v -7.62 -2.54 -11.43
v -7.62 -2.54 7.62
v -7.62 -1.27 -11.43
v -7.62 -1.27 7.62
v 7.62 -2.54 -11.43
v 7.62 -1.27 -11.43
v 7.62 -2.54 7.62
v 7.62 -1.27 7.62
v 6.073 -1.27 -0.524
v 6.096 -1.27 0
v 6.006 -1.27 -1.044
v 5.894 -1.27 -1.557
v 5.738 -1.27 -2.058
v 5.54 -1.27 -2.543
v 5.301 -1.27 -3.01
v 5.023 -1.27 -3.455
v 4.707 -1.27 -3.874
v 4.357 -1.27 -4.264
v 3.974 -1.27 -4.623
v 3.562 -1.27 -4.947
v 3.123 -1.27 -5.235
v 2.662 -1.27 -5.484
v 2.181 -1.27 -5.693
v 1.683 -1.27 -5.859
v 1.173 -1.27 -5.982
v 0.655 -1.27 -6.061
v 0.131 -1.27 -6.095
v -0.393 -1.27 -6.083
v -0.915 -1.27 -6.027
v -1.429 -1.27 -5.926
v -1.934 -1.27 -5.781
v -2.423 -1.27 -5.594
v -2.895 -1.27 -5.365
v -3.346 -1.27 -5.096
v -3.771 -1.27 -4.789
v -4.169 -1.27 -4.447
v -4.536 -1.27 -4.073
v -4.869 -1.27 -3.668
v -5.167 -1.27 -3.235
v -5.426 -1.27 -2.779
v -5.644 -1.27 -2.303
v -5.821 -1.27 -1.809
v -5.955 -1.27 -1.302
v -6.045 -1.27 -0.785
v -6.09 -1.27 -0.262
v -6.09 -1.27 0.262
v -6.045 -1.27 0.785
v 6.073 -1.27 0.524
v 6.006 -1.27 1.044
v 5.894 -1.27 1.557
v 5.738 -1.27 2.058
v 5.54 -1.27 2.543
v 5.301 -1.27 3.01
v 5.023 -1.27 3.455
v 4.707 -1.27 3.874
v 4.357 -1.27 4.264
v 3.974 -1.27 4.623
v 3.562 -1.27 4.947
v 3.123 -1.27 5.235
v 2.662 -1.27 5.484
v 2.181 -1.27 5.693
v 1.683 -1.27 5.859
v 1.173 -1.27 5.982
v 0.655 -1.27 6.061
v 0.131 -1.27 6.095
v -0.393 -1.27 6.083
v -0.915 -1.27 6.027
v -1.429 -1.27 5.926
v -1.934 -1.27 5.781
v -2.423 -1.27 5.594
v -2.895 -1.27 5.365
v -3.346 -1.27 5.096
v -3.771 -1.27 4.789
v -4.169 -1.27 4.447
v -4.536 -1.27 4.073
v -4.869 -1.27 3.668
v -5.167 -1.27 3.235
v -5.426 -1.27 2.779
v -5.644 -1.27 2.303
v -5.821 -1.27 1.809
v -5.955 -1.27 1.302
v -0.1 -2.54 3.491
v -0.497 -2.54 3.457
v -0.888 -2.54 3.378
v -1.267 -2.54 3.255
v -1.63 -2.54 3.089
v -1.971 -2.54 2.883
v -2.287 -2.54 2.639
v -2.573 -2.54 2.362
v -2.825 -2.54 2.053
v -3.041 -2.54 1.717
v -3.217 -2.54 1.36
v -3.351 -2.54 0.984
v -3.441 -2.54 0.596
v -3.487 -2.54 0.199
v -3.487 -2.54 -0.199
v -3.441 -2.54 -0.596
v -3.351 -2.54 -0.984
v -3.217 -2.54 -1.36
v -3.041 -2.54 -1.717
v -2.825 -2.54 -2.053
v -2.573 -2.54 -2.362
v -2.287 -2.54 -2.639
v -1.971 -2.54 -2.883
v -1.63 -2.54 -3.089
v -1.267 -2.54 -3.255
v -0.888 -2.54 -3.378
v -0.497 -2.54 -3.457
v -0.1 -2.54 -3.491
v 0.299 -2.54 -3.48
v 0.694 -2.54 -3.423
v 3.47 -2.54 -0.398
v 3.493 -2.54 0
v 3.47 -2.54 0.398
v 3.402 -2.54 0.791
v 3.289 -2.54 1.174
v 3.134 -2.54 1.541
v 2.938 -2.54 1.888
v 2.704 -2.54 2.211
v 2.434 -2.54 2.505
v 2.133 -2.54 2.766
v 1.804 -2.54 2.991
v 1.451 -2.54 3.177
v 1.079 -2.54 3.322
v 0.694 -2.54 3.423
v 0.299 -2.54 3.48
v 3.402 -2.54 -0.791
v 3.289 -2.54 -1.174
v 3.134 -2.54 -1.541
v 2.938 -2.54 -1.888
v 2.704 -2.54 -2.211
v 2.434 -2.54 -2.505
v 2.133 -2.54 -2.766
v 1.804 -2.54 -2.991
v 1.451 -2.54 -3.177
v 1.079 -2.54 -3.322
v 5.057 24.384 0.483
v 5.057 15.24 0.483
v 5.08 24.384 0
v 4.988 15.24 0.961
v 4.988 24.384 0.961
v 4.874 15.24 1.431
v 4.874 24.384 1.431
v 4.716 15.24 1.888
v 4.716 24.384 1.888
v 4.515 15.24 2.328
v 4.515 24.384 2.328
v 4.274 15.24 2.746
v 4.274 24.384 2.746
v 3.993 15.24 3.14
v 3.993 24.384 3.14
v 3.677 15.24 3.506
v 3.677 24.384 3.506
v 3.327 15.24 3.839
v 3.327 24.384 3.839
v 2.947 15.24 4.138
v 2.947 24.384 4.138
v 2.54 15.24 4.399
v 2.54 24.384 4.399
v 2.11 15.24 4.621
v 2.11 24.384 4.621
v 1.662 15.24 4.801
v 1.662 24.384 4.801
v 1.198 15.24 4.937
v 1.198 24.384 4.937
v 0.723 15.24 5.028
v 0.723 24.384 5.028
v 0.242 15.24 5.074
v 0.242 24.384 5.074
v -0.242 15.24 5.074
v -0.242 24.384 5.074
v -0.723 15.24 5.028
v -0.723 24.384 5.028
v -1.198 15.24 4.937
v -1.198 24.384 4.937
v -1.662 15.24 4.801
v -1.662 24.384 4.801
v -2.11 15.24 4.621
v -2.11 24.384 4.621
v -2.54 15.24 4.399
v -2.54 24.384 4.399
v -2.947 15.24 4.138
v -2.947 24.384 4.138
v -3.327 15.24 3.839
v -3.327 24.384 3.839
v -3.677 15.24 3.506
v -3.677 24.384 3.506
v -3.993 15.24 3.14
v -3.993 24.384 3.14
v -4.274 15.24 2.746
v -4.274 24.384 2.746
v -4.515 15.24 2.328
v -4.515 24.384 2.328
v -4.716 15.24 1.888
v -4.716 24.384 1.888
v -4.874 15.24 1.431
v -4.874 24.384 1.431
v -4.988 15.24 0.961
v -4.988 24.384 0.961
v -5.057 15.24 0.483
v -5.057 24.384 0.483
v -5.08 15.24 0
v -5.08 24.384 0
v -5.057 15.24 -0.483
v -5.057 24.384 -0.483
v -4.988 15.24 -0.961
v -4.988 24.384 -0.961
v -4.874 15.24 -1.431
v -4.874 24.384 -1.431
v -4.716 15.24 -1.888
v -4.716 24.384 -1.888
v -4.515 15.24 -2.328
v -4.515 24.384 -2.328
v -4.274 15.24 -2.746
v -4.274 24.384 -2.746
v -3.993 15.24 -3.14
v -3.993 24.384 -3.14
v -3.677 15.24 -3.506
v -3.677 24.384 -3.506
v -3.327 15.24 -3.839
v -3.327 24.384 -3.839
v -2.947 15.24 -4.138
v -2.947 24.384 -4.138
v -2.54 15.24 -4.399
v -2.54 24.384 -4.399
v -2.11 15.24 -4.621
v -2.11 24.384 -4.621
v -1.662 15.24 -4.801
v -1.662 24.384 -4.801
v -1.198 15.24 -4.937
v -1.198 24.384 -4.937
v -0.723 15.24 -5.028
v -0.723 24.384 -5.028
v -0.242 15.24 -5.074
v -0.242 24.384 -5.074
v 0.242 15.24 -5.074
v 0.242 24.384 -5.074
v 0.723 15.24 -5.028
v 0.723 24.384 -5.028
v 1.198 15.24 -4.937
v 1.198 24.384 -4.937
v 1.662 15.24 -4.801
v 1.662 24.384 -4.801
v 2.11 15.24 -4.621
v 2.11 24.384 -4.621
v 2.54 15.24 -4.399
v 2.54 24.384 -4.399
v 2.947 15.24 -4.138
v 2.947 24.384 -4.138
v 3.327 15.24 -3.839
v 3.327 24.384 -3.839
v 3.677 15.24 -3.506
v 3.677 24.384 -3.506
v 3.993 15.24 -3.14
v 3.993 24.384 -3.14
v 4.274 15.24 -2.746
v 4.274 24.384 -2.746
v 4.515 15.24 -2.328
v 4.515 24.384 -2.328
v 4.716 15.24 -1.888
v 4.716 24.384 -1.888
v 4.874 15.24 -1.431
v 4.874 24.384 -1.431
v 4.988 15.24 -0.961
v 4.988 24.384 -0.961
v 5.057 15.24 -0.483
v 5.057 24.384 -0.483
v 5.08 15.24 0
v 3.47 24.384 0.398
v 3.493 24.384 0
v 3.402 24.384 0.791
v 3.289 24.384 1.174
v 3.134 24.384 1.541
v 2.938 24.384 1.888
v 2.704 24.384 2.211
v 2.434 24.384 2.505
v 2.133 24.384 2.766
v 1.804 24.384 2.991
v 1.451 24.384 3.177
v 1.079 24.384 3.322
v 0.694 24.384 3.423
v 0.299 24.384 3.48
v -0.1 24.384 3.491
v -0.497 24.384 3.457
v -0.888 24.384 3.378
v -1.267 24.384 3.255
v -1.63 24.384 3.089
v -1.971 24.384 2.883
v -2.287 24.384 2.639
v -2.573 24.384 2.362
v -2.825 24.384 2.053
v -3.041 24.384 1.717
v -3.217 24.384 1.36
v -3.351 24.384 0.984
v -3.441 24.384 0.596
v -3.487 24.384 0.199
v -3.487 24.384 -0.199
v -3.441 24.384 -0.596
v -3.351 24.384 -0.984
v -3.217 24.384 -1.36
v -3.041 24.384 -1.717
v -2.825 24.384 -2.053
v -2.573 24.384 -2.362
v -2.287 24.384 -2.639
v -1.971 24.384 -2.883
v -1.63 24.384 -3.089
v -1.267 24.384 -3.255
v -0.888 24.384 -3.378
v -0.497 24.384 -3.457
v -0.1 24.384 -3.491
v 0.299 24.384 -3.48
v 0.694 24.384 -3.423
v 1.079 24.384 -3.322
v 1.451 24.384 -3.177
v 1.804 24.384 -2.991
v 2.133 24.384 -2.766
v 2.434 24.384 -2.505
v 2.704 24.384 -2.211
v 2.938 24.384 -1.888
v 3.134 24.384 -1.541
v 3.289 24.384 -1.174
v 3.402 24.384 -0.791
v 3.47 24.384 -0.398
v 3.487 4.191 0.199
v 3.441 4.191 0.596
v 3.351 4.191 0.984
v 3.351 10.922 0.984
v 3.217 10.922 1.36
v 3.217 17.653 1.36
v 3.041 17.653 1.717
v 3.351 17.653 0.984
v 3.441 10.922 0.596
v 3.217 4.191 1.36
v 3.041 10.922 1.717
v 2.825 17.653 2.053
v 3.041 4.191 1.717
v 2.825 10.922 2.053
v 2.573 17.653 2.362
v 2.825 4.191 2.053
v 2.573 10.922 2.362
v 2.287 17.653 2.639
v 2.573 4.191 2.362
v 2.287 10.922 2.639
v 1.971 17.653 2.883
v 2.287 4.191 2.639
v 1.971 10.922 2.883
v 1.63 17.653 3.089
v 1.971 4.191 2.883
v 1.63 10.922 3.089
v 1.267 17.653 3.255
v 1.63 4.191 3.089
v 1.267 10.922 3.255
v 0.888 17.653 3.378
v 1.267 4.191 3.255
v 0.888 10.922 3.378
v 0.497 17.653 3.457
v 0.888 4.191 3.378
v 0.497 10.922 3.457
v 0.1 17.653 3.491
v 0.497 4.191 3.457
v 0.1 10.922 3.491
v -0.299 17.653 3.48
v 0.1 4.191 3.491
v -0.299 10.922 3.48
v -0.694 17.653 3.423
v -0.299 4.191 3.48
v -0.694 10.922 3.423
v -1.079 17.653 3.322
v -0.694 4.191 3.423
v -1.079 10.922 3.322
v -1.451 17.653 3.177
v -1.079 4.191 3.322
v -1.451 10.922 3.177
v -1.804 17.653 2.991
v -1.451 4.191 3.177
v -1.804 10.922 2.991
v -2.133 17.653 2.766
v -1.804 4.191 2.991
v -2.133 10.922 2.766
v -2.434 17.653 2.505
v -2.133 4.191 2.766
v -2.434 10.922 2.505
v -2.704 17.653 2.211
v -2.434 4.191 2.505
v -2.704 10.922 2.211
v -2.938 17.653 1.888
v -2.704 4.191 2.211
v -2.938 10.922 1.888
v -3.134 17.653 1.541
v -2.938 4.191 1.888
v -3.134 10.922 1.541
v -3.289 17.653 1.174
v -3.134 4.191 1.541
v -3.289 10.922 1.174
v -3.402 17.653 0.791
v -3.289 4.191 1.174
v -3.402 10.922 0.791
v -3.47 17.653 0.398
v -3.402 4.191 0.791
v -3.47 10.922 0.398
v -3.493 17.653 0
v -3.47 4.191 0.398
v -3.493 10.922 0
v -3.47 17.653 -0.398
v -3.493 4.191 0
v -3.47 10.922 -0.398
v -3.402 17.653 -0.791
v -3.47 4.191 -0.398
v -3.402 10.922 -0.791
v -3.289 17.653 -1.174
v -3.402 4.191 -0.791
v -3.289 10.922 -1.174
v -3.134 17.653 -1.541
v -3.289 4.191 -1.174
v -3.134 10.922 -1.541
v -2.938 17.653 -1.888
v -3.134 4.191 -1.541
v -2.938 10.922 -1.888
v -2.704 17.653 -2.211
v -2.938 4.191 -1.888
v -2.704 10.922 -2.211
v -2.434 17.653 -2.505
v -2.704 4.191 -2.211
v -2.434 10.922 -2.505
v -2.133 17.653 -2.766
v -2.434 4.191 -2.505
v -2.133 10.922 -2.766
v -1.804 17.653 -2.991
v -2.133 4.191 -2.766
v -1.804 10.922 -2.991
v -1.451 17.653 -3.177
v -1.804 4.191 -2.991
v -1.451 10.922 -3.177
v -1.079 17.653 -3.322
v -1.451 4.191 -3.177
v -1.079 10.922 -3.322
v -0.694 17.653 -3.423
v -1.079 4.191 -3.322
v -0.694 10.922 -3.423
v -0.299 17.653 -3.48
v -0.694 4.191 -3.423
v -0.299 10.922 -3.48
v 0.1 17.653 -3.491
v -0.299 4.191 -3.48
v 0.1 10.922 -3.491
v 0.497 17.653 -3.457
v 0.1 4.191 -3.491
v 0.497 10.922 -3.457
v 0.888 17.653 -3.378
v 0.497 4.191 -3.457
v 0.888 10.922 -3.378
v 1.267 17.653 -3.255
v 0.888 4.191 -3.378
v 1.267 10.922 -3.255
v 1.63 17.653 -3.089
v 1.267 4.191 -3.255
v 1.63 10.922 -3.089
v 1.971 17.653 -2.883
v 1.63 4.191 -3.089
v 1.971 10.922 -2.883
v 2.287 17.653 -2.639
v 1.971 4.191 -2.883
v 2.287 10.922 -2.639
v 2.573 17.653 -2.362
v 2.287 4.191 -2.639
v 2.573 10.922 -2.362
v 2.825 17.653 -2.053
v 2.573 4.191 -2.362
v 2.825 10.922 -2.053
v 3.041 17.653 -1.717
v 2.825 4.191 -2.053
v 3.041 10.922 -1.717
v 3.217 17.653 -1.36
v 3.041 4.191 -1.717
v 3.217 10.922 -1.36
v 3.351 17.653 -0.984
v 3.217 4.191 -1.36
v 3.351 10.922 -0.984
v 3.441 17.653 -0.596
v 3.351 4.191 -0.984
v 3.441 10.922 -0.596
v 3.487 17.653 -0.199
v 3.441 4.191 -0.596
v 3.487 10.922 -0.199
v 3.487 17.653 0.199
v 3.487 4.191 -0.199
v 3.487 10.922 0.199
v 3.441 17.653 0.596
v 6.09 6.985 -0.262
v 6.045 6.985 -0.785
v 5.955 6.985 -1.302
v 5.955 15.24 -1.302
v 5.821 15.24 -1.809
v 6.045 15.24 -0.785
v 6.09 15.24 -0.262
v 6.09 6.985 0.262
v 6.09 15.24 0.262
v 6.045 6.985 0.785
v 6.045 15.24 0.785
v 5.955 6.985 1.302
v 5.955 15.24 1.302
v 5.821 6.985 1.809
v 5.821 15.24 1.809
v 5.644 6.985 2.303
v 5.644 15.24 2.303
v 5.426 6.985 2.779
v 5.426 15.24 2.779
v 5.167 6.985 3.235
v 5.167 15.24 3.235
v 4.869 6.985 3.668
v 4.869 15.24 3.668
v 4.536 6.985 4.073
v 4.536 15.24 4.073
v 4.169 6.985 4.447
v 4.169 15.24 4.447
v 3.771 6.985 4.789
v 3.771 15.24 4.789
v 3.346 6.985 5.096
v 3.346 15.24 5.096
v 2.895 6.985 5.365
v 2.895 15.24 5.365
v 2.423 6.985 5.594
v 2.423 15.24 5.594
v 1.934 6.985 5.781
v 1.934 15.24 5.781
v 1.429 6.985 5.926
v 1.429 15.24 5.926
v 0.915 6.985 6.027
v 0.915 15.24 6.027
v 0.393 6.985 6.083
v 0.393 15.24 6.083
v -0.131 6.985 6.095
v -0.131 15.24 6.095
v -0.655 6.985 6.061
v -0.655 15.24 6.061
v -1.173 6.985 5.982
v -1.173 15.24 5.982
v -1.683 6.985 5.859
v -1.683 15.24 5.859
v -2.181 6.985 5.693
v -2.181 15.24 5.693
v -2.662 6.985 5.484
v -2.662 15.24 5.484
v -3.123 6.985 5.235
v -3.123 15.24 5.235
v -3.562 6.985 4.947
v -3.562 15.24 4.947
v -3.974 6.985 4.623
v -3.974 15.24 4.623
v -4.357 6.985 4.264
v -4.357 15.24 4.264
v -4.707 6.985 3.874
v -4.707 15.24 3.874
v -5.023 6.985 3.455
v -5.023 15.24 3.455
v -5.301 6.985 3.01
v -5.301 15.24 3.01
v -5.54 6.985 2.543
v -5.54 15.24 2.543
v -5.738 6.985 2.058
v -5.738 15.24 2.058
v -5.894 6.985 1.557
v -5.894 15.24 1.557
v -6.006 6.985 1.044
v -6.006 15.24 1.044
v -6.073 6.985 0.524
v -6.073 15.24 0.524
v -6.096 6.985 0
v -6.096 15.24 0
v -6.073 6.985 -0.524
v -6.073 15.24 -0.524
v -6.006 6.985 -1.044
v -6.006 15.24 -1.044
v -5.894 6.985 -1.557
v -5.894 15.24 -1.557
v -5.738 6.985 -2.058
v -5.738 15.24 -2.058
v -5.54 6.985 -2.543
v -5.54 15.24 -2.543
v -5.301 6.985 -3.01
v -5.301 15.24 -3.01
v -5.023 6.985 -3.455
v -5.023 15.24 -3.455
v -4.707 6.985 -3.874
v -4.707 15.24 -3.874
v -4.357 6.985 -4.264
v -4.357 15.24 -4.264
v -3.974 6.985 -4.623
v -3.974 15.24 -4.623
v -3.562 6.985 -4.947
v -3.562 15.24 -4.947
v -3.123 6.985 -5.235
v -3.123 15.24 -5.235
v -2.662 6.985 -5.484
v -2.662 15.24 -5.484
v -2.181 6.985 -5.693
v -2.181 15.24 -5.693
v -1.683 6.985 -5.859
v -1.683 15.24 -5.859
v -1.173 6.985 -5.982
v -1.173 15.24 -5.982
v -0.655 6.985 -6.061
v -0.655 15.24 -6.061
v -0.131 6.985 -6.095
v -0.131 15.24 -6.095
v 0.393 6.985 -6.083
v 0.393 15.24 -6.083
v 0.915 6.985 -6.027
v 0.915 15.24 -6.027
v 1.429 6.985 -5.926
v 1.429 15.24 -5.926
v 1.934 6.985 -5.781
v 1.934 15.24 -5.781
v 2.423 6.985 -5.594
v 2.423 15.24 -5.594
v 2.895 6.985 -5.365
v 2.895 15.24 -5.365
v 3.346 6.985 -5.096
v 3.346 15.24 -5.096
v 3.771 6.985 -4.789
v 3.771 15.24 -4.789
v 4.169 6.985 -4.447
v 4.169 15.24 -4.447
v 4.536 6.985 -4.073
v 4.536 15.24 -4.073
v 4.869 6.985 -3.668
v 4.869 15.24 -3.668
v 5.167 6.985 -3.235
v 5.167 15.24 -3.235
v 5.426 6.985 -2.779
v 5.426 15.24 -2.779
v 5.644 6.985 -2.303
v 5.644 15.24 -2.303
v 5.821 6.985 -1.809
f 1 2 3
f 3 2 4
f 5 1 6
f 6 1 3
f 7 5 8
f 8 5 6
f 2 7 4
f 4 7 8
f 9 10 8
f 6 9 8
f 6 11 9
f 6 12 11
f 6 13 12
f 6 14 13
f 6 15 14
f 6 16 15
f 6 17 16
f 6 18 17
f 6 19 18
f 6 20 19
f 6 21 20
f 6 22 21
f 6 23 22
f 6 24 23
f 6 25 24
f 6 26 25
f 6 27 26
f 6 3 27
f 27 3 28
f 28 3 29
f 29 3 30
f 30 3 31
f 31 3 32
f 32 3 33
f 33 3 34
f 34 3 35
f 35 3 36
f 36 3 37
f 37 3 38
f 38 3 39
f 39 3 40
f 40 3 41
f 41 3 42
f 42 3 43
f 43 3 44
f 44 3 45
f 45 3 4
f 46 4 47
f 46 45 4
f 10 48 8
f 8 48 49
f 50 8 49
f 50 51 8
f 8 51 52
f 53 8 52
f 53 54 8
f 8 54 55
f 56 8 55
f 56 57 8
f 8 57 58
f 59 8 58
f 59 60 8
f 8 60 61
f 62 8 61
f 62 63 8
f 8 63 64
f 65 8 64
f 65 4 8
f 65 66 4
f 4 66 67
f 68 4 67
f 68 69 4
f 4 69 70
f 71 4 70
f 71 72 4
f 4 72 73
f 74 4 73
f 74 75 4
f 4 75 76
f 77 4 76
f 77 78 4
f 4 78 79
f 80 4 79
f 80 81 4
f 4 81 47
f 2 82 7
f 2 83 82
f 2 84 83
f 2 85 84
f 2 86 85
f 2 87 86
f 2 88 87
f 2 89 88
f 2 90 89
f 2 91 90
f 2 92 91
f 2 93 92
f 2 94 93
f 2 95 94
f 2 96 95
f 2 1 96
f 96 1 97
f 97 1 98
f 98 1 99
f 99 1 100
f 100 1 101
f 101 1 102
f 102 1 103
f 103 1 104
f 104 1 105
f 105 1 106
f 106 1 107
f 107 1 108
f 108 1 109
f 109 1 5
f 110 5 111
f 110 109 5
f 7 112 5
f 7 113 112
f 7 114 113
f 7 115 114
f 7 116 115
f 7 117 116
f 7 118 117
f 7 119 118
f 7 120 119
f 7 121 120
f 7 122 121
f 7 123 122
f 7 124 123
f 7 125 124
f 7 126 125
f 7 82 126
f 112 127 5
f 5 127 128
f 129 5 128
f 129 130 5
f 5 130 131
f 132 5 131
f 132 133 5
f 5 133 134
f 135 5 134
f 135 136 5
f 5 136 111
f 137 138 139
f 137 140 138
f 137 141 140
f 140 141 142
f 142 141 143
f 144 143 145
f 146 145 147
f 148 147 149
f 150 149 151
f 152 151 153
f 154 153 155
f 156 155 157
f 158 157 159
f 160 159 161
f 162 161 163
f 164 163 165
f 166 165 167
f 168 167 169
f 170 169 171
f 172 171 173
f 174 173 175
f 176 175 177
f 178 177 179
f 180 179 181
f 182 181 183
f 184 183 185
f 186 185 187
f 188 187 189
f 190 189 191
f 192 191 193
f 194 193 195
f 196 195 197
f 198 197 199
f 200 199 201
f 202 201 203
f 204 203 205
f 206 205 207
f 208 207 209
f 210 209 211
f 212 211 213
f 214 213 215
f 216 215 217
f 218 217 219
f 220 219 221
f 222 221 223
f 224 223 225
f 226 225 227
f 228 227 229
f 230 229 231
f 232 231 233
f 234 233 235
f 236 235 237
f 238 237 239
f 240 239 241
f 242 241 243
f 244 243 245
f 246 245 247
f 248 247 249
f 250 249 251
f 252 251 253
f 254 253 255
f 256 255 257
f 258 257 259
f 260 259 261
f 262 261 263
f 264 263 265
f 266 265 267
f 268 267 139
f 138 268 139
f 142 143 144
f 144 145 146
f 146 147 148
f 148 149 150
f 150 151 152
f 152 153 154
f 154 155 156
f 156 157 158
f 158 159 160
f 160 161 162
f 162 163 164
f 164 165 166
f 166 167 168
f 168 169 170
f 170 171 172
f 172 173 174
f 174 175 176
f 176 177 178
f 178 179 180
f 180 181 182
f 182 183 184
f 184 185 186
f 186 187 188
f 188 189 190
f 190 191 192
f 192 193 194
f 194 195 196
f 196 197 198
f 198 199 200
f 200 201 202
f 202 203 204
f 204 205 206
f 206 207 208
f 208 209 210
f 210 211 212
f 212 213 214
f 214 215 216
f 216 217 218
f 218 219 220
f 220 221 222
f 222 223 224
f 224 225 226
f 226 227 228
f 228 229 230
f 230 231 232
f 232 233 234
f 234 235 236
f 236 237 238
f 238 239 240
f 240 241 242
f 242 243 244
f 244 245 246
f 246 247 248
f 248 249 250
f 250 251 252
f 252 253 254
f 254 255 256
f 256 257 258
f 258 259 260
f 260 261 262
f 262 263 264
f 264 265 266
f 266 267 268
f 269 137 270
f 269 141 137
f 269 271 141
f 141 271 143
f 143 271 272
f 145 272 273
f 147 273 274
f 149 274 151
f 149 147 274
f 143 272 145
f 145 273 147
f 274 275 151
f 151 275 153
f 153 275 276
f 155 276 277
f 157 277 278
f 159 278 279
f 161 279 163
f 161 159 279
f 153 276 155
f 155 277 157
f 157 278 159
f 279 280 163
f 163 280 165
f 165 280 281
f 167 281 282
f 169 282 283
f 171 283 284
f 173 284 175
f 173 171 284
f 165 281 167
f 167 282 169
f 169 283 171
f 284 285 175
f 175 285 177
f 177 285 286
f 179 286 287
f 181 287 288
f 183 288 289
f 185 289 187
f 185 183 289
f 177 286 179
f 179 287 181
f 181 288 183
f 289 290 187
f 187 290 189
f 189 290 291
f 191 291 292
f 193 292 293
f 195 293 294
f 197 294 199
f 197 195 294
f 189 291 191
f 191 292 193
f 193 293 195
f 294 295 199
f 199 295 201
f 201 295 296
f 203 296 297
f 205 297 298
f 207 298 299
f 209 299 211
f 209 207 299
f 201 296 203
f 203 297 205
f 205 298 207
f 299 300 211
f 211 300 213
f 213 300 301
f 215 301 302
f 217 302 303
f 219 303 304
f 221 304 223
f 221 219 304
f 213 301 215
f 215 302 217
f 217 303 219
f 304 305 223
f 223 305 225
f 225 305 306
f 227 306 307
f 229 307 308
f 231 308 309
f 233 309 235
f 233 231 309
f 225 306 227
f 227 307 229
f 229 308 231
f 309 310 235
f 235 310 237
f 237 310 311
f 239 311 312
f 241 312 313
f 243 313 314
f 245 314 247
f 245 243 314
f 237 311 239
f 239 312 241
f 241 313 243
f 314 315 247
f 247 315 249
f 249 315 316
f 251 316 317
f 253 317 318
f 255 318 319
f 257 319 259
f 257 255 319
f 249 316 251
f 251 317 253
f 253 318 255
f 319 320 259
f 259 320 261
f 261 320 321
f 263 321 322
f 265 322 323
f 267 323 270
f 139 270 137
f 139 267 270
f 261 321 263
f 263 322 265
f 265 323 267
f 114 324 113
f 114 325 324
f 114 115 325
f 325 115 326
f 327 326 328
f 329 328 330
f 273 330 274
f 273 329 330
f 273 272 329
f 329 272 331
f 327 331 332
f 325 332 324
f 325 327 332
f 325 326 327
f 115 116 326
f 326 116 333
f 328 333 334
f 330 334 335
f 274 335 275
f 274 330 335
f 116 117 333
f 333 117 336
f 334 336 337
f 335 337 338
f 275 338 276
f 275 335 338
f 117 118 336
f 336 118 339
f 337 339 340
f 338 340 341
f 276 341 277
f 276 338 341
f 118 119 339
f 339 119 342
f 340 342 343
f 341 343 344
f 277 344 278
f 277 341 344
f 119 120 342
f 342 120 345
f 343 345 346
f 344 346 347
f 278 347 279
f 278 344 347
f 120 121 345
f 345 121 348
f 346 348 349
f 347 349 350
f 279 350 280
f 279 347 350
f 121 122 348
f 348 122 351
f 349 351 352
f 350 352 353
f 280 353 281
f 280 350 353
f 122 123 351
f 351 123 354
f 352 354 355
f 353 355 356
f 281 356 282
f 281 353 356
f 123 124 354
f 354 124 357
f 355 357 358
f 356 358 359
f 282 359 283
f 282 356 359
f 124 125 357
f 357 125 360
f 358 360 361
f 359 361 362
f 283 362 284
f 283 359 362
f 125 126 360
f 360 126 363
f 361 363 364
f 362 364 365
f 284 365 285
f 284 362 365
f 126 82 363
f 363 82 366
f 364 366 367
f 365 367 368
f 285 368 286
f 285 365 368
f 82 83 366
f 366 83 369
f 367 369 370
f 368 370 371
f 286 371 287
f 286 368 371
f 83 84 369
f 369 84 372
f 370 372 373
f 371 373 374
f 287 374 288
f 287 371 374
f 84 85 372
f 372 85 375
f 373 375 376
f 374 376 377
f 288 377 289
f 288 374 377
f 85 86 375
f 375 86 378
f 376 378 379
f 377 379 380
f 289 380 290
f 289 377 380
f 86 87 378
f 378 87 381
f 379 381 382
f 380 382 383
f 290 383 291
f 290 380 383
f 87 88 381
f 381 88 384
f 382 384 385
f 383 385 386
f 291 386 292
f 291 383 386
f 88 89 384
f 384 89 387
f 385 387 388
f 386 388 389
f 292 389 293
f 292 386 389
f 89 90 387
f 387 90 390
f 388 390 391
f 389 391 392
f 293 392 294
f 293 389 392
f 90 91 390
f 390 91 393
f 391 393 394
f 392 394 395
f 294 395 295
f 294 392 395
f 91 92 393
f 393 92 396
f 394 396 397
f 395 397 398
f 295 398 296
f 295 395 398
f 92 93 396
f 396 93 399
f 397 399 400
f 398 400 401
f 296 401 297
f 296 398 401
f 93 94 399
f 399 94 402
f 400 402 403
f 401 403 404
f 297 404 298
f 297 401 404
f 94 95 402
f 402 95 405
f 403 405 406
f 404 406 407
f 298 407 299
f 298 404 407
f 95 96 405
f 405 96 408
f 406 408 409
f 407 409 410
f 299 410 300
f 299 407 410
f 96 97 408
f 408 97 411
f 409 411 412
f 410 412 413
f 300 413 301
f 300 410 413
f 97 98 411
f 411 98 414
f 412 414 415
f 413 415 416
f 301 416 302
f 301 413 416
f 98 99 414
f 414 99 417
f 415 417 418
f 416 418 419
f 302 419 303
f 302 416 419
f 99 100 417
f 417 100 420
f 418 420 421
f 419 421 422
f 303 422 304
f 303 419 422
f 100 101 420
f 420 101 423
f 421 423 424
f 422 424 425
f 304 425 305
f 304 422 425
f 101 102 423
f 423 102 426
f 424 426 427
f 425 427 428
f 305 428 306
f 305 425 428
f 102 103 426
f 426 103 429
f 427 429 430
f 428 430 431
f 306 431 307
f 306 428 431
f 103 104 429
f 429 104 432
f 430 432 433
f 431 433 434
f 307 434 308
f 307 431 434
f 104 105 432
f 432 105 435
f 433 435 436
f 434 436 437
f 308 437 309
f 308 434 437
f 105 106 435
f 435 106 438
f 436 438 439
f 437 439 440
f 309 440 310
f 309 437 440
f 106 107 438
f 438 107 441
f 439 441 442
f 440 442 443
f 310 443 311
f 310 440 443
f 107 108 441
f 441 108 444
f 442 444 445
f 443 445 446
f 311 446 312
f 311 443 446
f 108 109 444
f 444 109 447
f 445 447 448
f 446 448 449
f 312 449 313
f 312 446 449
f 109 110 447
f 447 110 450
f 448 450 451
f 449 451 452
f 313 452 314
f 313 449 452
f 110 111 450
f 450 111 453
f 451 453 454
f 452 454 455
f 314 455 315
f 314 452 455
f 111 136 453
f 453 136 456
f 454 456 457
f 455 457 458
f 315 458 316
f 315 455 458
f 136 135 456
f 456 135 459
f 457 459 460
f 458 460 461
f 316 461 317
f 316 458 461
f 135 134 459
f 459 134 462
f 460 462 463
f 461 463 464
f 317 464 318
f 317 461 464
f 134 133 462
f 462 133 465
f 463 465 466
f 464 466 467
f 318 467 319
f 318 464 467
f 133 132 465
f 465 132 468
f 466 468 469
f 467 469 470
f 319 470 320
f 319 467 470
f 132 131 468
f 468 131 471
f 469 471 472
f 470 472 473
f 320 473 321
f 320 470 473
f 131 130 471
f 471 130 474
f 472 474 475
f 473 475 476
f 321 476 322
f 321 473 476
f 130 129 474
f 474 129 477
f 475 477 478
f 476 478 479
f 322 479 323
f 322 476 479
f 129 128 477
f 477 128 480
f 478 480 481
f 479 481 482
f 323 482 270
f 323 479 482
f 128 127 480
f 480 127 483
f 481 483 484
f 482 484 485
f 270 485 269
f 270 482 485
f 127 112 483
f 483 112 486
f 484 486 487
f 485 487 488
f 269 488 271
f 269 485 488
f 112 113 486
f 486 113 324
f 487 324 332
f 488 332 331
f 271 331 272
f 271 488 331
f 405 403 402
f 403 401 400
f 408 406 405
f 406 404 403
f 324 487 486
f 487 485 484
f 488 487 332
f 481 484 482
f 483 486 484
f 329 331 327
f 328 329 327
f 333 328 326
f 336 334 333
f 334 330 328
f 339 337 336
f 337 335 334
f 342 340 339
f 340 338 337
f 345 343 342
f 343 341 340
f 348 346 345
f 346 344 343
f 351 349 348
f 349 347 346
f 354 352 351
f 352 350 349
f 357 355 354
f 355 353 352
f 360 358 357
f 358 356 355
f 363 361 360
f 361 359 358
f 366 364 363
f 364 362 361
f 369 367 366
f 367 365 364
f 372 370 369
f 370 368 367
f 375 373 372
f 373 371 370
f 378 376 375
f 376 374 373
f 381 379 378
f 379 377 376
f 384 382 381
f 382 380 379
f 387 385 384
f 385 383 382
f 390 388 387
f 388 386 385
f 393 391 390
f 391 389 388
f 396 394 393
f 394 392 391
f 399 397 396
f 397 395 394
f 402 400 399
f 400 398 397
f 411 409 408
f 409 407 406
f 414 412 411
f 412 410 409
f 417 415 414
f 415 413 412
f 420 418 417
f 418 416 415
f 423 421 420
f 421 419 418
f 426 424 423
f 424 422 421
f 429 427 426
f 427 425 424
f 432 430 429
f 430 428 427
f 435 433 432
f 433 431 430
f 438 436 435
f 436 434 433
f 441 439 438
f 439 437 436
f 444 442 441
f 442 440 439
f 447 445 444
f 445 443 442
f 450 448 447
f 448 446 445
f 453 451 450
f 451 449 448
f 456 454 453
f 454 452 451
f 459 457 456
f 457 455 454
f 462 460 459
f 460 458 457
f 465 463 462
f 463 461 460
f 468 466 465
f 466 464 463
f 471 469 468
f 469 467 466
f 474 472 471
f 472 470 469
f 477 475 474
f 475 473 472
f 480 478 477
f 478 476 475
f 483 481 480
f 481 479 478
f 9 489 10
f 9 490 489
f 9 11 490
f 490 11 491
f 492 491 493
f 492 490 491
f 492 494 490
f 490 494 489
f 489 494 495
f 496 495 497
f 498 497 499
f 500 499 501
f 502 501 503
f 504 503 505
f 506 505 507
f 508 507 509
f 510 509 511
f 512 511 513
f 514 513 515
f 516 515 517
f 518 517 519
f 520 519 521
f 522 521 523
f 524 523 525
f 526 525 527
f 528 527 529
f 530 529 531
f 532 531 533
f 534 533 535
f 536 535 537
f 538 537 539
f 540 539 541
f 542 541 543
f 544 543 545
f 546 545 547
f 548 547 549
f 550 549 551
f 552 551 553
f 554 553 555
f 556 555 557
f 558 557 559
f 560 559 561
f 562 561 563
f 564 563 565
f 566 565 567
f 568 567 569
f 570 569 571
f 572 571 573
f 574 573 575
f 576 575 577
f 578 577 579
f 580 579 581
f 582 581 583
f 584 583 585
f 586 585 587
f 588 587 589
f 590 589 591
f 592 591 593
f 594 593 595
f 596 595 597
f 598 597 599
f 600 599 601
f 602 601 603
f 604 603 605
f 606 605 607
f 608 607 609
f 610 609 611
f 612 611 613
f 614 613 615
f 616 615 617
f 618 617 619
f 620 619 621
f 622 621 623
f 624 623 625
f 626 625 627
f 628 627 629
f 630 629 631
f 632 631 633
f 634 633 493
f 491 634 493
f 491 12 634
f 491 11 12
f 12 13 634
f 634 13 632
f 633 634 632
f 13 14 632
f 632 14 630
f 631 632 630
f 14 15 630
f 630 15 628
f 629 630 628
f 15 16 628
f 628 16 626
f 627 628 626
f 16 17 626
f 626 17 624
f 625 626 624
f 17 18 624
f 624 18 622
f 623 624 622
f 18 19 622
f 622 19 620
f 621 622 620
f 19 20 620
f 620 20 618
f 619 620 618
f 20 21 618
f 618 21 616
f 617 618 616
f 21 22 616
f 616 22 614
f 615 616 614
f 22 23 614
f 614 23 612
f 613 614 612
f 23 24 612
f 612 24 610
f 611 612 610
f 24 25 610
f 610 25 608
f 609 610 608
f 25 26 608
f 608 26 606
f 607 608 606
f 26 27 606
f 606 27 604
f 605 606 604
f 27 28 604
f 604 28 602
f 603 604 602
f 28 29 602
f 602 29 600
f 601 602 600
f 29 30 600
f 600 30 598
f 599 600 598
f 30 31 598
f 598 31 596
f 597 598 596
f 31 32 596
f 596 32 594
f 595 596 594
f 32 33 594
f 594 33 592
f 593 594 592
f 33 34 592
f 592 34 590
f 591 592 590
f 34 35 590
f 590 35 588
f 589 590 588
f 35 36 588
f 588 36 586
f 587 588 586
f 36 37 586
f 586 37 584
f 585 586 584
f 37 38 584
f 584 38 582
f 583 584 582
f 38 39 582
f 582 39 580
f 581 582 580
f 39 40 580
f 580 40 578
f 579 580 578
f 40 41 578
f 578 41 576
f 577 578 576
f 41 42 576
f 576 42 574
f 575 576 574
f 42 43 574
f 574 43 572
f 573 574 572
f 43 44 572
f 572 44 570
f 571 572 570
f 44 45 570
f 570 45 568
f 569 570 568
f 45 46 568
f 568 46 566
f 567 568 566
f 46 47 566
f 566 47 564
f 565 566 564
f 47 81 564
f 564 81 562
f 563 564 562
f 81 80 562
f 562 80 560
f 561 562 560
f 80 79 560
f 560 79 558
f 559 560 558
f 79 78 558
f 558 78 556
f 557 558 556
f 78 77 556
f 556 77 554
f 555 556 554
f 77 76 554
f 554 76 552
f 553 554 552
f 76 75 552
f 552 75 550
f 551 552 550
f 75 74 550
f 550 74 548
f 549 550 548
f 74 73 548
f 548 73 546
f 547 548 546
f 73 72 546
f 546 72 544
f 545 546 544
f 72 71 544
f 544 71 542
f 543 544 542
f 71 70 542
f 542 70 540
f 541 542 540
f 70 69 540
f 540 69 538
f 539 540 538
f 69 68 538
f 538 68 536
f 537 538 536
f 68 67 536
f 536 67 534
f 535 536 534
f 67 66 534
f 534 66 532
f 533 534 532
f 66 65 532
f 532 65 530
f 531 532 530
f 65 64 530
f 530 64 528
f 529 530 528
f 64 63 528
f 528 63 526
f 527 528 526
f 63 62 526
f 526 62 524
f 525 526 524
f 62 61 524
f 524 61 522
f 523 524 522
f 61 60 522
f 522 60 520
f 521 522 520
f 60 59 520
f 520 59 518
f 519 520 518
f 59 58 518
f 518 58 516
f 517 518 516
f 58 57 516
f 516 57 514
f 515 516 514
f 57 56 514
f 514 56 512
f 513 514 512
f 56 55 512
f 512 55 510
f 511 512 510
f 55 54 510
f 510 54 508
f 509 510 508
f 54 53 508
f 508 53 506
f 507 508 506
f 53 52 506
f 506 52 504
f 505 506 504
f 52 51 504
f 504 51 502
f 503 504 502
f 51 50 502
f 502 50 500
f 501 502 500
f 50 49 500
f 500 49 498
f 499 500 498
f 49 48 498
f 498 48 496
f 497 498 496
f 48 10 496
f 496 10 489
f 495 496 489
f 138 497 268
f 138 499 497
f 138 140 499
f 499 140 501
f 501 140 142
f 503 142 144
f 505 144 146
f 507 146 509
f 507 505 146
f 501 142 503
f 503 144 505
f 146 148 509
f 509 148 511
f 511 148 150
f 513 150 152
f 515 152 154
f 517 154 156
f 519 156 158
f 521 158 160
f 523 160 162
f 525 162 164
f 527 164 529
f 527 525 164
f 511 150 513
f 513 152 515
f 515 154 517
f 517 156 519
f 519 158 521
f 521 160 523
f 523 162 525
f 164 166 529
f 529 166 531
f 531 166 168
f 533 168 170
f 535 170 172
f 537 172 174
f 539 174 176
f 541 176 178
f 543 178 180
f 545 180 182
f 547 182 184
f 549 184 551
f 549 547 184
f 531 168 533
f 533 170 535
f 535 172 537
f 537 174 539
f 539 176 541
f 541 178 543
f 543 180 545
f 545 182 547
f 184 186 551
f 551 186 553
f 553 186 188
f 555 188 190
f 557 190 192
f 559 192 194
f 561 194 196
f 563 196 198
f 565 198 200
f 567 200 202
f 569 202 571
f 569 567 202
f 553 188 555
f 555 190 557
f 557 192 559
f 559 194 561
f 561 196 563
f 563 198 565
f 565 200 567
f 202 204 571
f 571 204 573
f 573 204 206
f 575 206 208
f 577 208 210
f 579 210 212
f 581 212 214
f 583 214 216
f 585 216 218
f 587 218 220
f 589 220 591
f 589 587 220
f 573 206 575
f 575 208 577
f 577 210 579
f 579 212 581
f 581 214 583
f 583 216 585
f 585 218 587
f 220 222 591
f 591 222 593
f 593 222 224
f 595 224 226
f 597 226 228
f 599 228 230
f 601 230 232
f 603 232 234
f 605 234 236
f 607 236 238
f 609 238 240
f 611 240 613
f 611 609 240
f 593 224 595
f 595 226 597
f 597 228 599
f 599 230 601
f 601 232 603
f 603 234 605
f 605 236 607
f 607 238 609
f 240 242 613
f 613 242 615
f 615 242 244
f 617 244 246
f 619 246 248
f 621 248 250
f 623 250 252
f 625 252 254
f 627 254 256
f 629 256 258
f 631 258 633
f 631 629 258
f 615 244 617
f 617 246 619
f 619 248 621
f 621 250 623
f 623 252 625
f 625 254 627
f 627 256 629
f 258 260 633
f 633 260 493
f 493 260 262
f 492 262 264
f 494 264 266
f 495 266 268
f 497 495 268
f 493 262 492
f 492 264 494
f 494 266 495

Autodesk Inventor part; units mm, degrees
ref_plane "YZ Plane" through (0, 0, 0) normal (1, 0, 0) x (0, 1, 0)
ref_plane "XZ Plane" through (0, 0, 0) normal (0, 1, 0) x (-1, 0, 0)
ref_plane "XY Plane" through (0, 0, 0) normal (0, 0, 1) x (1, 0, 0)
sketch "Sketch1" plane through (0, 0, 0) normal (0, 1, 0) x (-1, 0, 0)
  circle A0 centre (0, 0) radius 6.096
  circle A1 centre (0, 0) radius 3.4925
  dimension "d0" = 12.192
  dimension "d1" = 6.985
extrude "Extrusion1" add sketch "Sketch1" along normal blind 15.24
sketch "Sketch2" plane through (0, 15.24, 0) normal (0, 1, 0) x (1, 0, 0)
  circle A0 centre (0, 0) radius 3.4925 projected
  circle A1 centre (0, 0) radius 6.096 projected
  circle A2 centre (0, 0) radius 3.4925
  circle A3 centre (0, 0) radius 5.08
  dimension "d4" = 10.16
extrude "Extrusion2" add sketch "Sketch2" along normal blind 9.144 contours A3
sketch "Sketch3" plane through (0, 0, 0) normal (0, -1, 0) x (1, 0, 0)
  circle A0 centre (0, 0) radius 3.4925 projected
  circle A1 centre (0, 0) radius 6.096 projected
  circle A2 centre (0, 0) radius 3.4925
  circle A3 centre (0, 0) radius 6.096
extrude "Extrusion3" add sketch "Sketch3" along normal blind 2.54
sketch "Sketch4" plane through (0, -2.54, 0) normal (0, -1, 0) x (1, 0, 0)
  circle A0 centre (0, 0) radius 6.096 projected
  circle A1 centre (0, 0) radius 6.096
  line L0 (-7.62, 7.62) -> (7.62, 7.62)
  line L1 (7.62, 7.62) -> (7.62, -11.43)
  line L2 (7.62, -11.43) -> (-7.62, -11.43)
  line L3 (-7.62, -11.43) -> (-7.62, 7.62)
  dimension "d12" = 15.24
  dimension "d13" = 19.05
  dimension "d14" = 7.62
  dimension "d15" = 7.62
extrude "Extrusion4" add sketch "Sketch4" against normal blind 1.27
properties part number "Tube_Part"
